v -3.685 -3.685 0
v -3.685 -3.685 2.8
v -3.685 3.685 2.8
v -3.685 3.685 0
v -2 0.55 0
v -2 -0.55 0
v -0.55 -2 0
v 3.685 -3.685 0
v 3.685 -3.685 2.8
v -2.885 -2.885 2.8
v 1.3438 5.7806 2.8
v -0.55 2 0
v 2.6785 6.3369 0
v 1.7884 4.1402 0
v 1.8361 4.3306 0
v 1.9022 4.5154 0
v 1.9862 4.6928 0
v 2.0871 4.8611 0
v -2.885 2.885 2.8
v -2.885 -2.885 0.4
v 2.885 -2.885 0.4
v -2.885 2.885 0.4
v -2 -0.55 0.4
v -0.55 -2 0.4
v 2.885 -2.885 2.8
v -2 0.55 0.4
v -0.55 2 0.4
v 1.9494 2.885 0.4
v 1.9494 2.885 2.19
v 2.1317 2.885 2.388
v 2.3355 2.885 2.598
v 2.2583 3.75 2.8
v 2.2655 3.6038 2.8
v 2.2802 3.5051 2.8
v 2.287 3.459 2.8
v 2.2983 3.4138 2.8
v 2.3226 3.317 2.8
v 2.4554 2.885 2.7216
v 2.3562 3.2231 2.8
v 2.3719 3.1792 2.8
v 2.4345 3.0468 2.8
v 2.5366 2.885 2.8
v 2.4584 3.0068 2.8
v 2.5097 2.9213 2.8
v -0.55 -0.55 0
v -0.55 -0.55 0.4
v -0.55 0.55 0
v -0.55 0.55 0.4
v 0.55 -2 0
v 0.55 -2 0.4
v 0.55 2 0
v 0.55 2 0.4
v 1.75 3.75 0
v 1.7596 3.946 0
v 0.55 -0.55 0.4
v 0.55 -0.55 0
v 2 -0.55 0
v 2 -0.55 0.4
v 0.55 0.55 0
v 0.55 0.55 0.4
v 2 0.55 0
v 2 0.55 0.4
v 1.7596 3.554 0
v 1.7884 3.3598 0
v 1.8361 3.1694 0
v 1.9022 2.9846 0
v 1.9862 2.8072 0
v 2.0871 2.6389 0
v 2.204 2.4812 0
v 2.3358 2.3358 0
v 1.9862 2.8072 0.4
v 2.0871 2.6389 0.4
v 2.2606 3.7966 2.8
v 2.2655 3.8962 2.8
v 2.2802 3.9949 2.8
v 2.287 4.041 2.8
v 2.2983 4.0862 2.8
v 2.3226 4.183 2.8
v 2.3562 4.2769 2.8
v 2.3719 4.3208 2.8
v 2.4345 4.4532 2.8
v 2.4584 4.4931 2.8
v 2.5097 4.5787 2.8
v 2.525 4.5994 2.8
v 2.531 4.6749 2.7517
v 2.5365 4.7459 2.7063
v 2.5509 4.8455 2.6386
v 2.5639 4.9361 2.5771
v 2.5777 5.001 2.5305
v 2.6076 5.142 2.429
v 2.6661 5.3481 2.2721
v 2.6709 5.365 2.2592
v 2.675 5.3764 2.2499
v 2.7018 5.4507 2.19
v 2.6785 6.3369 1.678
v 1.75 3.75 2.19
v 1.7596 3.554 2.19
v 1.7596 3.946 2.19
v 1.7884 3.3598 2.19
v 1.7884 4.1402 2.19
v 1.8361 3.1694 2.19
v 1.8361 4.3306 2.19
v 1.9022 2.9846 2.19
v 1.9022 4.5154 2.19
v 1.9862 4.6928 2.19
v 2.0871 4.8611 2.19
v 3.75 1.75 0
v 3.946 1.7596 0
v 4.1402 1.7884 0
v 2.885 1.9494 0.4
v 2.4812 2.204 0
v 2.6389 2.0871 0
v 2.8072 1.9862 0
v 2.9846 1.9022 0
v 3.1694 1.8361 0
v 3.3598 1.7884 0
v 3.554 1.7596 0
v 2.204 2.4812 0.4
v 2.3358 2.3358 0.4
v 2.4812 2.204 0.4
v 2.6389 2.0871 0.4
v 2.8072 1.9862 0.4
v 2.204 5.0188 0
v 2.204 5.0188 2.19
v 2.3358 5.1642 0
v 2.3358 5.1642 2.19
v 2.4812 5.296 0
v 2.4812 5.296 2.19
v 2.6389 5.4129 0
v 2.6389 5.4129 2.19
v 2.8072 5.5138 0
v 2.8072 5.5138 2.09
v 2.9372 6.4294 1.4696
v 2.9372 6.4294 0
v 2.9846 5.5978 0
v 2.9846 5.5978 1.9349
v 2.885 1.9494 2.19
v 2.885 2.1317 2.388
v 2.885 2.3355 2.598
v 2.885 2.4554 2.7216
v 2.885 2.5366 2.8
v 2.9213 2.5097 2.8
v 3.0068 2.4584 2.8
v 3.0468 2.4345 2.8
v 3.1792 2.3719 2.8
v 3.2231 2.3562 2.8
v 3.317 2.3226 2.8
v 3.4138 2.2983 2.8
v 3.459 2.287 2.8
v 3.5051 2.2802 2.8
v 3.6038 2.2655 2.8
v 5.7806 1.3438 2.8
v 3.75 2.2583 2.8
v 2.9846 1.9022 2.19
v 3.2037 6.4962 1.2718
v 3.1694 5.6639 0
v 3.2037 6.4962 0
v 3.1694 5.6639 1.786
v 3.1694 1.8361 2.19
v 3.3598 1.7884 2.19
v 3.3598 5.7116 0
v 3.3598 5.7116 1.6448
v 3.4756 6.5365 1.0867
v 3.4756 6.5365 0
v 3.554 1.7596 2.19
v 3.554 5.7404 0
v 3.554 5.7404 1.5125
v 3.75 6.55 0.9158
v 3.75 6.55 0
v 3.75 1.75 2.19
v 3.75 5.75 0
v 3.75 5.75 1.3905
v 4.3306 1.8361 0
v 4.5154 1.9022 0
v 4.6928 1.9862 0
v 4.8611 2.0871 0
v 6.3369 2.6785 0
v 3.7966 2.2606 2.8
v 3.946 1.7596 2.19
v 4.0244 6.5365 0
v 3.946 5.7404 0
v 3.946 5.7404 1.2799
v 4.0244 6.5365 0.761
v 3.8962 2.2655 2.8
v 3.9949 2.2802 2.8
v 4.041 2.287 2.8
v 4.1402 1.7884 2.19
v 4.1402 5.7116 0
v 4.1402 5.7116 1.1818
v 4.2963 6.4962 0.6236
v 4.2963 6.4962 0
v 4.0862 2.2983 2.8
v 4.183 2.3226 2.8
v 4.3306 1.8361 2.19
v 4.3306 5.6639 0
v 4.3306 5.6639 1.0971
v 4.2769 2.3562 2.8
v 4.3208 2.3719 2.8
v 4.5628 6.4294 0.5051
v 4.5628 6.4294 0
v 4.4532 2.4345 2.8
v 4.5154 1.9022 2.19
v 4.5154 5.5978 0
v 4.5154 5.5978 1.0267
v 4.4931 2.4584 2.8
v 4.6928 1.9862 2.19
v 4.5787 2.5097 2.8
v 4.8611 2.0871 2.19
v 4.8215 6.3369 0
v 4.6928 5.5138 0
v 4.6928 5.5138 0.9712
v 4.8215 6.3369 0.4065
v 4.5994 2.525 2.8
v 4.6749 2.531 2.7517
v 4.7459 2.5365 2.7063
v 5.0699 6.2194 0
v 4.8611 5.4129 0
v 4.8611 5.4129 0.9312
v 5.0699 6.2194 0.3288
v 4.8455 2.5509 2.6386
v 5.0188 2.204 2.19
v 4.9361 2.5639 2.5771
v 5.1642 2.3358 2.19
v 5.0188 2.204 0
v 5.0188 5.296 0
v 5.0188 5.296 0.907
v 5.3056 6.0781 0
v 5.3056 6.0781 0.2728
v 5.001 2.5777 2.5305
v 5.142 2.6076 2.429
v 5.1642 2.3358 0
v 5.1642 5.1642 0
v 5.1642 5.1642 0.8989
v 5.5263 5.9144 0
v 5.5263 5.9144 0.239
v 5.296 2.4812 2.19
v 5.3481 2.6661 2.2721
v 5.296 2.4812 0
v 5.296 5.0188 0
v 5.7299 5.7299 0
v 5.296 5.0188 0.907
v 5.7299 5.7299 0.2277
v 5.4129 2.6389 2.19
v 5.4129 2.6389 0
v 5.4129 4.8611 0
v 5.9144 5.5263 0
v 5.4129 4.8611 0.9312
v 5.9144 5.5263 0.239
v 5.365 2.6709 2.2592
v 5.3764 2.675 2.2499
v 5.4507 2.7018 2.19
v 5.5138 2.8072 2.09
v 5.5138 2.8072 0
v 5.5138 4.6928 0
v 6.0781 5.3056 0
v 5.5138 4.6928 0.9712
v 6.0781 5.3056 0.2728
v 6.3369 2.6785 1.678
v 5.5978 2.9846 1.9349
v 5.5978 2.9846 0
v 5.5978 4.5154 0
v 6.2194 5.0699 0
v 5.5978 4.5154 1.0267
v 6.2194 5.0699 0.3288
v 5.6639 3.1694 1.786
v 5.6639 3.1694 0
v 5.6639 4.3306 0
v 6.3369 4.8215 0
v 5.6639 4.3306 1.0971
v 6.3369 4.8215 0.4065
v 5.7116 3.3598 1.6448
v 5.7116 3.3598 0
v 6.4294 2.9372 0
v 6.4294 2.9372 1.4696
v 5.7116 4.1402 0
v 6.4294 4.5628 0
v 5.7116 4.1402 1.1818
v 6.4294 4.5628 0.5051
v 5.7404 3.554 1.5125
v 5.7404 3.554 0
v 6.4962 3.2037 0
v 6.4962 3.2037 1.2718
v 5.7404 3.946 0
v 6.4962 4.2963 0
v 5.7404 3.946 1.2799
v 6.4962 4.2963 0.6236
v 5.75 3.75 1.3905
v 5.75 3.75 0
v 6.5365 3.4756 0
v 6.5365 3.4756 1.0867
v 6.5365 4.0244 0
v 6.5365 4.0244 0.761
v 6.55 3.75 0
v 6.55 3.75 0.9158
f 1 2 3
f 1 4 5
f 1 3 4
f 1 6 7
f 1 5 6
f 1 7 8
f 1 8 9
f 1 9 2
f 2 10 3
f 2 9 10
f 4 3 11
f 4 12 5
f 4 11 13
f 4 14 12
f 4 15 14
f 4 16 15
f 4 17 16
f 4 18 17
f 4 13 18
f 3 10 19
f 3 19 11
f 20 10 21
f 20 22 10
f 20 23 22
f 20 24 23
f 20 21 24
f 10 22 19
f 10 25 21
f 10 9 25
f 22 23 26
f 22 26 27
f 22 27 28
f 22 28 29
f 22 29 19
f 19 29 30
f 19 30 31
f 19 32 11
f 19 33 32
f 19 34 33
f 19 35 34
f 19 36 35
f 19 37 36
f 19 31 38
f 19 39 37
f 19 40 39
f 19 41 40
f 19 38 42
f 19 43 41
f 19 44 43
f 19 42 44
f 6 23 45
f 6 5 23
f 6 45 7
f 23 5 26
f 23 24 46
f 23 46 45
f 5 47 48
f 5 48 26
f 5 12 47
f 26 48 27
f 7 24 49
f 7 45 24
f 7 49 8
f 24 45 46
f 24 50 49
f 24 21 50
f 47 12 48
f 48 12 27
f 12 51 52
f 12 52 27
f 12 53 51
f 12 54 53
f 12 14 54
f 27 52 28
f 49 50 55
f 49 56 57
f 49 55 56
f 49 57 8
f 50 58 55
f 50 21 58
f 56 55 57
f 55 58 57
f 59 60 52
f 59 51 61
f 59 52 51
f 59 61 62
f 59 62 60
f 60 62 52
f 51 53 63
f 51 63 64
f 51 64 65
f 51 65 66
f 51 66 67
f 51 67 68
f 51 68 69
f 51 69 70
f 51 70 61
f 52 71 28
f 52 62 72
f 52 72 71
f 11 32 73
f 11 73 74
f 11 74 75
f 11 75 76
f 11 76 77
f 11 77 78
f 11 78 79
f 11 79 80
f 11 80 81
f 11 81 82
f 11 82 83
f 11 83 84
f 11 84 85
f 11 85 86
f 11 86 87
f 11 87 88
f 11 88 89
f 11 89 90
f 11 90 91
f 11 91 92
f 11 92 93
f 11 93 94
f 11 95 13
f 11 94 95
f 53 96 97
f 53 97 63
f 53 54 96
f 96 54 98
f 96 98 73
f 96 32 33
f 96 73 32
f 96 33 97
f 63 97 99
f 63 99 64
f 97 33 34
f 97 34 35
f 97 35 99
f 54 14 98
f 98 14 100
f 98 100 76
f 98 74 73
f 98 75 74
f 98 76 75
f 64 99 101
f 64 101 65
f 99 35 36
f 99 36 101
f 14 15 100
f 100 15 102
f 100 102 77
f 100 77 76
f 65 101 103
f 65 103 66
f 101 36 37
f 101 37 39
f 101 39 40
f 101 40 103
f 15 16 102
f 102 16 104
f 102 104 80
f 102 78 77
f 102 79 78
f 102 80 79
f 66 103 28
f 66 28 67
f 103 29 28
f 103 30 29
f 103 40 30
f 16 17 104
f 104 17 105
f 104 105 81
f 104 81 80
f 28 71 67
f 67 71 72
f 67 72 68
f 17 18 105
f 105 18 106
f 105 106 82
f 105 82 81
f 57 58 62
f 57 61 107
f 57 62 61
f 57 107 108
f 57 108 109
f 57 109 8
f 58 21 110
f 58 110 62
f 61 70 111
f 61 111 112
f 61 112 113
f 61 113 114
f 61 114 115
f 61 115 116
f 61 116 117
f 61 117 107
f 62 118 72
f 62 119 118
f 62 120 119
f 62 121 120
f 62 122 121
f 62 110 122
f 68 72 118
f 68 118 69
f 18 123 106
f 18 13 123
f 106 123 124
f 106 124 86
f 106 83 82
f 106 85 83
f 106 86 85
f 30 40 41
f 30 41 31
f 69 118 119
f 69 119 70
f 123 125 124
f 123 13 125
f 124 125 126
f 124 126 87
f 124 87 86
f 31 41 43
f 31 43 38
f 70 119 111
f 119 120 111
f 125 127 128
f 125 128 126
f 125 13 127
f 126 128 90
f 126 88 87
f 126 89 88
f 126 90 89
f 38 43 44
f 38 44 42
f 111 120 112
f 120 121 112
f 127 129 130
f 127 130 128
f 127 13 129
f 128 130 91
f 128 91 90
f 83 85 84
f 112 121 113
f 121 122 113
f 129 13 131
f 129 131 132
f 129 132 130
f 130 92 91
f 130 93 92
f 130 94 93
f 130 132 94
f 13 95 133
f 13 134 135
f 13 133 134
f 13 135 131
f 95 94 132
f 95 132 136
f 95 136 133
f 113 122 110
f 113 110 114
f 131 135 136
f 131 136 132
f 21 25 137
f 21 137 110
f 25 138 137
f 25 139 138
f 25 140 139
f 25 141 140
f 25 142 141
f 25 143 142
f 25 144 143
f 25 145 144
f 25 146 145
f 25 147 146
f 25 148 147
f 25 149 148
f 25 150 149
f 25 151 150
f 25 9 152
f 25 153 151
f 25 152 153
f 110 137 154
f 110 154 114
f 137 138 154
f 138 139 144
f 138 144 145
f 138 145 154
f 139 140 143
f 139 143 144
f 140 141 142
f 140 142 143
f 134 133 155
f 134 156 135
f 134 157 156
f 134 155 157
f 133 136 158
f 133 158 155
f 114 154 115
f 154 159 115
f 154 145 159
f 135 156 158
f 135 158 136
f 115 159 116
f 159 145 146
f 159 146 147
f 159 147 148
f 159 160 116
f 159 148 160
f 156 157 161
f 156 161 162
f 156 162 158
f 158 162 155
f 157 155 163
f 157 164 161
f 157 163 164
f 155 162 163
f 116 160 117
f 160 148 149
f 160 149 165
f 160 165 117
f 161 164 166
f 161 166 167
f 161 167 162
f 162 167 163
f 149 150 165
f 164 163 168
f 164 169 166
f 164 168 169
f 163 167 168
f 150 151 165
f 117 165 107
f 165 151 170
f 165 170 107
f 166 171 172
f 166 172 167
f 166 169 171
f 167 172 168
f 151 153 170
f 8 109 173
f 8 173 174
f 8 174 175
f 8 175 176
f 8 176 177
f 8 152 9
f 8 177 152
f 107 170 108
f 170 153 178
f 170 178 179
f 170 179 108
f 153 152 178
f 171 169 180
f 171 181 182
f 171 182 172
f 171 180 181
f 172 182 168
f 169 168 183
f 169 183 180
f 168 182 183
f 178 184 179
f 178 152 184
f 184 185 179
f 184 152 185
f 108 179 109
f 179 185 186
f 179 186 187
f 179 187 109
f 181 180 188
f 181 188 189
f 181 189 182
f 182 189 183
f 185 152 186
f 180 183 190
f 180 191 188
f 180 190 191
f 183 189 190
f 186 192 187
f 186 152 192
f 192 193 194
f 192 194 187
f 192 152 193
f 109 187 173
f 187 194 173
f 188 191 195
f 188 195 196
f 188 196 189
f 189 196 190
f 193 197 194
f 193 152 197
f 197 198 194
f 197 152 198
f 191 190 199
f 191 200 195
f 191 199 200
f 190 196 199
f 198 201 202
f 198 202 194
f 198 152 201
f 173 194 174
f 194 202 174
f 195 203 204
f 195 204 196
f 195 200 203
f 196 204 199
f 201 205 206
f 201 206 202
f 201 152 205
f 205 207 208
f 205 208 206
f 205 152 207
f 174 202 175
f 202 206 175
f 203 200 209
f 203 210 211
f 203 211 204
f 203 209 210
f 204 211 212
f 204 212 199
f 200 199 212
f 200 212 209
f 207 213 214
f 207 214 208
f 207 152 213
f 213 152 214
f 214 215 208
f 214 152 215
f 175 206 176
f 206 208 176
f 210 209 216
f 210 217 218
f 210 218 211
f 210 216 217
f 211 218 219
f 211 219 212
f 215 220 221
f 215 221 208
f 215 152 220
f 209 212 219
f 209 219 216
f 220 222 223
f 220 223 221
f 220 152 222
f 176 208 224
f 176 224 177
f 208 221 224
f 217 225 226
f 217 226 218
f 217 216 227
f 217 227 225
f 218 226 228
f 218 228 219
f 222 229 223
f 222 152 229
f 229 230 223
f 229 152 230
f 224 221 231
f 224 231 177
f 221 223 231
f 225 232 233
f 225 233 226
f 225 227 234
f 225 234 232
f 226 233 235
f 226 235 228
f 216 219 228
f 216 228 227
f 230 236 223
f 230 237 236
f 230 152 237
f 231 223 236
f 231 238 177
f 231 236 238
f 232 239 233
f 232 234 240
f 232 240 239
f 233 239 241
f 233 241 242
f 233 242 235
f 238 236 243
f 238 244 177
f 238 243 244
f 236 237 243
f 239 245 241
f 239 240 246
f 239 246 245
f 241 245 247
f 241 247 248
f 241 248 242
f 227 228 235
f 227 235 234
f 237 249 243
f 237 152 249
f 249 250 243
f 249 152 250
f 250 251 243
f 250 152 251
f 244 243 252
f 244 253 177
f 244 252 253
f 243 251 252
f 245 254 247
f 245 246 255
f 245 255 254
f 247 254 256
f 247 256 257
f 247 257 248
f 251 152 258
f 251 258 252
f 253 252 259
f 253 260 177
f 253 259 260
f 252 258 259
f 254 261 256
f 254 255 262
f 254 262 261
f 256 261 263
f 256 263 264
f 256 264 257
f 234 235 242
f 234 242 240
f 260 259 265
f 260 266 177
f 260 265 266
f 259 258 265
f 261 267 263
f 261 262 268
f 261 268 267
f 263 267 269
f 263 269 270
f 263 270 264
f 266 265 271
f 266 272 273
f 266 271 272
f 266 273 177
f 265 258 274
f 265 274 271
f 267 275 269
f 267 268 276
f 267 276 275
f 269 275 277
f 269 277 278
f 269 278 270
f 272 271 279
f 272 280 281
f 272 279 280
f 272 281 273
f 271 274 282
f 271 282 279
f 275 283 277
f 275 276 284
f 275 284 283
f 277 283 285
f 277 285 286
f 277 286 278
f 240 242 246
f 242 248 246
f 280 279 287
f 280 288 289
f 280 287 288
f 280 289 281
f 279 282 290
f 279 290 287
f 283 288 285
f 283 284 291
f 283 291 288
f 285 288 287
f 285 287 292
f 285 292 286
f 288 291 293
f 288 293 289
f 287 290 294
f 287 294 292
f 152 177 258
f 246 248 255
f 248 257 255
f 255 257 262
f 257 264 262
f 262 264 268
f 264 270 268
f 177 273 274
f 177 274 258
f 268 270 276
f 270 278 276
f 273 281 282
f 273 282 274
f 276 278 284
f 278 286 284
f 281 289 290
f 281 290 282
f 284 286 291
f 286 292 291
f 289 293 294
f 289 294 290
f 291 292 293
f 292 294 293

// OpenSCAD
// file: ../../utils.scad
SWITCH_HOLE_WIDTH = 14;
SWITCH_HOLE_TOLERANCE = 0.2;

PLATE_THICKNESS = 1.7;
PLATE_BORDER_WIDTH = 3;

SWITCH_HEIGHT_UNDER_PLATE = 5 - PLATE_THICKNESS;
SWITCH_PLACEHOLDER_WIDTH = 19.05;

STAB_2u_DISTANCE_BETWEEN_HOLES_CENTER = 23.8;
STAB_3u_DISTANCE_BETWEEN_HOLES_CENTER = 38.1;
STAB_5u_DISTANCE_BETWEEN_HOLES_CENTER = 76.2;
// STAB_HOLE_WIDHT = 6.75;
STAB_HOLE_WIDHT = 7;
STAB_HOLE_HEIGHT = 14;
STAB_HOLE_DISTANCE_TO_SWITCH_TOP = 1;

KEYCAP_WIDTH = 18.10;
KEYCAP_HEIGHT = 11.60;
KEYCAP_HEIGHT_ABOVE_PLATE = 6.80;

SUPPORT_WALL_THICKNESS = 1.85;

/* [Hidden] */

$fn = 32;

module hole(x = 0, y = 0, w = 0, h = 0, is_support = false) {
  real_x = x * SWITCH_PLACEHOLDER_WIDTH;
  real_y = y * SWITCH_PLACEHOLDER_WIDTH;
  real_w = w * SWITCH_PLACEHOLDER_WIDTH;
  real_h = h * SWITCH_PLACEHOLDER_WIDTH;

  center_x = real_x + real_w/2;
  center_y = real_y + real_h/2;
  translate([center_x, center_y, 0]) {
    if (is_support) {
      r = 1.5;
      // Switch under plate
      offset(r = r) offset(r = -r) square(SWITCH_PLACEHOLDER_WIDTH - SUPPORT_WALL_THICKNESS, true);

      // Stab under plate
      offset(r = r) offset(r = -r) {
        // 2u, 2.25u, 2.75u stab
        if (w == 2 || w == 2.25 || w == 2.75) {
          square([STAB_HOLE_WIDHT + STAB_2u_DISTANCE_BETWEEN_HOLES_CENTER + 3, SWITCH_PLACEHOLDER_WIDTH + 1], true);
        }
        
        // 3u stab
        if (w == 3) {
          square([STAB_HOLE_WIDHT + STAB_3u_DISTANCE_BETWEEN_HOLES_CENTER + 3, SWITCH_PLACEHOLDER_WIDTH + 1], true);
        }

        // ISO enter key
        if (h == 2) {
          square([SWITCH_PLACEHOLDER_WIDTH + 1, STAB_HOLE_WIDHT + STAB_2u_DISTANCE_BETWEEN_HOLES_CENTER + 3], true);
        }
      }
    } else {
      // Switch plate hole
      square(SWITCH_HOLE_WIDTH + SWITCH_HOLE_TOLERANCE, true);

      // Stab plate hole
      stab_distance_to_top = y == 0 ? STAB_HOLE_DISTANCE_TO_SWITCH_TOP : -STAB_HOLE_DISTANCE_TO_SWITCH_TOP;
      translate([0, stab_distance_to_top, 0]) {
        // 2u, 2.25u, 2.75u stab
        if (w == 2 || w == 2.25 || w == 2.75) {
          translate([STAB_2u_DISTANCE_BETWEEN_HOLES_CENTER/2, 0, 0])  square([STAB_HOLE_WIDHT, STAB_HOLE_HEIGHT], true);
          translate([-STAB_2u_DISTANCE_BETWEEN_HOLES_CENTER/2, 0, 0])  square([STAB_HOLE_WIDHT, STAB_HOLE_HEIGHT], true);
        }
        
        // 3u stab
        if (w == 3) {
          translate([STAB_3u_DISTANCE_BETWEEN_HOLES_CENTER/2, 0, 0])  square([STAB_HOLE_WIDHT, STAB_HOLE_HEIGHT], true);
          translate([-STAB_3u_DISTANCE_BETWEEN_HOLES_CENTER/2, 0, 0])  square([STAB_HOLE_WIDHT, STAB_HOLE_HEIGHT], true);
        }
      } 

      // ISO enter key
      if (h == 2) {
        translate([-STAB_HOLE_DISTANCE_TO_SWITCH_TOP, 0, 0]) {
          translate([0, STAB_2u_DISTANCE_BETWEEN_HOLES_CENTER/2, 0])  square([STAB_HOLE_HEIGHT, STAB_HOLE_WIDHT], true);
          translate([0, -STAB_2u_DISTANCE_BETWEEN_HOLES_CENTER/2, 0])  square([STAB_HOLE_HEIGHT, STAB_HOLE_WIDHT], true);
        }
      }
    }
  }
}

module plate(x = 0, y = 0) {
  difference() {
    square([x * SWITCH_PLACEHOLDER_WIDTH, y * SWITCH_PLACEHOLDER_WIDTH]);
    children();
  }
}
// main file
// THE LEVITATOR - Goes under the keycap to provide a cusion of magnetic levitation

// AUTHOR: Riskable <riskable@youknowwhat.com>
// VERSION: 1.0 (Changelog is at the bottom)

/* NOTES:

    * The default configuration works with 4x1 through 4x2mm magnets (anything shorter than 2mm will end up stuck in
   there just fine--don't worry about it).
    * The default configuration will "eat" 0.4mm of your stem's cross height.  So keycaps won't be able to go all the
   way down (if you didn't print that part of the stem slightly longer to make up for it).  In testing, losing 0.4mm of
   height on the cross part of the stem makes absolutely no difference whatsoever.  The keycap still stays on just fine.
   I wouldn't worry about it =)

*/

$fn = 64;

use <../../utils.scad>

// Configurables
LEVITATOR_THICKNESS =
    0.4; // How thick the floor will be/how much of the cross part of the stem (+) gets eaten by THE LEVITATOR
WALL_THICKNESS = 0.8;   // How thick around the edges you want it to be (0.8 is fine and fits under most keycaps)
STEM_TOLERANCE = 0.15;  // How tight the cross-shaped cutout will be
MAGNET_TOLERANCE = 0.2; // Only used with MAGNET_HEIGHT (because we have some bridging)
MAGNET_DIAMETER = 4;
MAGNET_HEIGHT = 2;
MAGNET_DISTANCE = 3.75; // Distance from the center of the stem where the magnet goes

// Constants
CHERRY_CYLINDER_DIAMETER = 5.47; // Represents the keycap's stem (female side of the +)
CHERRY_CROSS_LENGTH = 4;         // Length of the - and the | in the +
// We make the cross slightly thinner than normal to keep a tight fit:
CHERRY_CROSS_THICKNESS_X = 1.1; // Width of the - and in the + (Reality: 1.31)
CHERRY_CROSS_THICKNESS_Y = 1.1; // Width of the | in the + (Reality: 1.09)

levitator(MAGNET_DIAMETER, MAGNET_HEIGHT, magnet_distance = MAGNET_DISTANCE, magnet_tolerance = MAGNET_TOLERANCE,
          wall_thickness = WALL_THICKNESS, thickness = LEVITATOR_THICKNESS, stem_tolerance = STEM_TOLERANCE);
// levitator_double_sided(MAGNET_DIAMETER, MAGNET_HEIGHT, magnet_distance=MAGNET_DISTANCE,
// magnet_tolerance=MAGNET_TOLERANCE, wall_thickness=WALL_THICKNESS, thickness=LEVITATOR_THICKNESS,
// stem_tolerance=STEM_TOLERANCE);

// TODO: Finish making this as well as making a matching void space version for top plates:
// This is for the special situations with long ass/heavy spacebars:
BACKFORCE_LENGTH = 30; // 15mm from the center of the switch on either side
BACKFORCE_WIDTH =
    11; // Needs to fit inside/under the keycap but not terribly tight--just enough to prevent it from rotating
// uplifting_jigaroo(BACKFORCE_LENGTH, BACKFORCE_WIDTH, stem_diameter=CHERRY_CYLINDER_DIAMETER, magnet_diameter=4,
// magnet_height=2, magnet_tolerance=0, wall_thickness=1.2);

module levitator(magnet_diameter, magnet_height, magnet_distance = 3.75, magnet_tolerance = MAGNET_TOLERANCE,
                 wall_thickness = 0.9, thickness = 1, stem_tolerance = 0.15)
{
    // NOTE: stem_tolerance is the keycap stem; not the switch stem
    height = 2 + wall_thickness; // Just enough to grab the stem
    difference()
    {
        translate([ 0, 0, height / 2 ]) union()
        {
            // Main body of the thing
            hull()
            {
                // NOTE: The square-ish walls around the stem area are just to provide rigidity
                cube(
                    [
                        CHERRY_CYLINDER_DIAMETER + wall_thickness * 2 + stem_tolerance * 2,
                        CHERRY_CYLINDER_DIAMETER + wall_thickness * 2 + stem_tolerance * 2,
                        height
                    ],
                    center = true);
                translate([ magnet_distance, magnet_distance, 0 ])
                    cylinder(d = magnet_diameter + wall_thickness * 2, h = height, center = true);
            }
            // Body of the part that holds the magnet (hollowed out below)
            translate([ magnet_distance, magnet_distance, 0 ])
                cylinder(d = magnet_diameter + wall_thickness * 2, h = height, center = true);
        }
        translate([ 0, 0, -5 ]) cherry_cross(length = 10);               // Just don't die on it
        translate([ 0, 0, height / 2 + thickness + wall_thickness / 2 ]) // Stem cutout
            cube(
                [
                    CHERRY_CYLINDER_DIAMETER + stem_tolerance * 2, CHERRY_CYLINDER_DIAMETER + stem_tolerance * 2,
                    height +
                    wall_thickness
                ],
                center = true);
        translate([ magnet_distance, magnet_distance, (magnet_height + magnet_tolerance) / 2 - 0.01 ])
        {
            cylinder(d = magnet_diameter, h = magnet_height + magnet_tolerance, center = true);
            // So we can pop the magnet out if we screw up which pole is facing down:
            //            rotate([0,0,45])
            //                cube([magnet_diameter/3,magnet_diameter/3,100], center=true);
        }
        // Make an angled hole in the top that stops the magnet from coming out while also letting you push it out if
        // needed to flip it around
        translate([ magnet_distance, magnet_distance, wall_thickness / 2 + (magnet_height + magnet_tolerance) - 0.01 ])
            cylinder(d1 = magnet_diameter, d2 = magnet_diameter / 1.5, h = wall_thickness, center = true);
        // Cut off a few bits here and there so it can fit under more keycaps
        //        translate([magnet_distance*2+wall_thickness/1.25,magnet_distance*1.25,magnet_diameter/2])
        //            cube([magnet_diameter, magnet_diameter*2, magnet_diameter*2], center=true);
        //        translate([magnet_distance*1.25,magnet_distance*2+wall_thickness/1.25,magnet_diameter/2])
        //            cube([magnet_diameter*2, magnet_diameter, magnet_diameter*2], center=true);
        translate([ magnet_distance * 1.5, magnet_distance * 1.5, magnet_diameter / 1.35 ]) rotate([ 0, -50, 45 ])
            cube([ magnet_diameter, magnet_diameter * 2, magnet_diameter * 2 ], center = true);
    }
}

module levitator_double_sided(magnet_diameter, magnet_height, magnet_distance = 3.75,
                              magnet_tolerance = MAGNET_TOLERANCE, wall_thickness = 0.9, thickness = 1,
                              stem_tolerance = 0.15)
{
    // NOTE: stem_tolerance is the keycap stem; not the switch stem
    height = 2 + wall_thickness; // Just enough to grab the stem
    difference()
    {
        translate([ 0, 0, height / 2 ]) union()
        {
            // Main body of the thing
            hull()
            {
                // NOTE: The square-ish walls around the stem area are just to provide rigidity
                cube(
                    [
                        CHERRY_CYLINDER_DIAMETER + wall_thickness * 2 + stem_tolerance * 2,
                        CHERRY_CYLINDER_DIAMETER + wall_thickness * 2 + stem_tolerance * 2,
                        height
                    ],
                    center = true);
                translate([ magnet_distance, magnet_distance, 0 ])
                    cylinder(d = magnet_diameter + wall_thickness * 2, h = height, center = true);
                translate([ -magnet_distance, -magnet_distance, 0 ])
                    cylinder(d = magnet_diameter + wall_thickness * 2, h = height, center = true);
            }
            // Body of the part that holds the magnet (hollowed out below)
            translate([ magnet_distance, magnet_distance, 0 ])
                cylinder(d = magnet_diameter + wall_thickness * 2, h = height, center = true);
        }
        translate([ 0, 0, -5 ]) cherry_cross(length = 10);               // Just don't die on it
        translate([ 0, 0, height / 2 + thickness + wall_thickness / 2 ]) // Stem cutout
            cube(
                [
                    CHERRY_CYLINDER_DIAMETER + stem_tolerance * 2, CHERRY_CYLINDER_DIAMETER + stem_tolerance * 2,
                    height +
                    wall_thickness
                ],
                center = true);
        translate([ magnet_distance, magnet_distance, (magnet_height + magnet_tolerance) / 2 - 0.01 ])
            cylinder(d = magnet_diameter, h = magnet_height + magnet_tolerance, center = true);
        translate([ -magnet_distance, -magnet_distance, (magnet_height + magnet_tolerance) / 2 - 0.01 ])
            cylinder(d = magnet_diameter, h = magnet_height + magnet_tolerance, center = true);
        // Make an angled hole in the top that stops the magnet from coming out while also letting you push it out if
        // needed to flip it around
        translate([ magnet_distance, magnet_distance, wall_thickness / 2 + (magnet_height + magnet_tolerance) - 0.01 ])
            cylinder(d1 = magnet_diameter, d2 = magnet_diameter / 1.5, h = wall_thickness, center = true);
        translate(
            [ -magnet_distance, -magnet_distance, wall_thickness / 2 + (magnet_height + magnet_tolerance) - 0.01 ])
            cylinder(d1 = magnet_diameter, d2 = magnet_diameter / 1.5, h = wall_thickness, center = true);
        // Cut off a few bits here and there so it can fit under more keycaps
        translate([ magnet_distance * 1.5, magnet_distance * 1.5, magnet_diameter / 1.35 ]) rotate([ 0, -50, 45 ])
            cube([ magnet_diameter, magnet_diameter * 2, magnet_diameter * 2 ], center = true);
        translate([ -magnet_distance * 1.5, -magnet_distance * 1.5, magnet_diameter / 1.35 ]) rotate([ 0, 50, 45 ])
            cube([ magnet_diameter, magnet_diameter * 2, magnet_diameter * 2 ], center = true);
    }
}

// This is a magnetic levitation backward-force generator that can be placed under any given (long) keycap to cusion the
// bottom and provide a backwards (upwards) force to ease the burden of bringing a heavy keycap back up.  In other
// words, it's for (heavy) spacebars.  NOTE: The *length* is really just the distance between the center of the
// magnets--not the actual length of the thing. NOTE: Requires matching magnets (same locations underneath) in the
// keyboard plate!
module uplifting_jigaroo(length, width, stem_diameter = CHERRY_CYLINDER_DIAMETER, magnet_diameter = 4,
                         magnet_height = 2, magnet_tolerance = 0, wall_thickness = 1.2)
{
    // NOTE: We make this pretty thick so it's stable--even though that adds extra weight
    difference()
    {
        cube(
            [
                length + magnet_diameter + magnet_tolerance * 2 + wall_thickness * 2, width, magnet_height +
                wall_thickness
            ],
            center = true);
        cube([ stem_diameter, stem_diameter, wall_thickness * 8 ], center = true);
        translate([ length / 2, 0, magnet_height / 2 - wall_thickness / 4 ])
            cylinder(d = magnet_diameter + magnet_tolerance * 2, h = magnet_height + 0.01, center = true);
        translate([ -length / 2, 0, magnet_height / 2 - wall_thickness / 4 ])
            cylinder(d = magnet_diameter + magnet_tolerance * 2, h = magnet_height + 0.01, center = true);
    }
}

// This makes the + bit that slides *in* to a Cherry MX style keycap:
module cherry_cross(length = CHERRY_CROSS_LENGTH, y_adjust = 0, x_adjust = 0)
{
    linear_extrude(height = length)
    {
        square([ CHERRY_CROSS_THICKNESS_X + x_adjust, CHERRY_CROSS_LENGTH ], center = true);
        square([ CHERRY_CROSS_LENGTH, CHERRY_CROSS_THICKNESS_Y + y_adjust ], center = true);
    }
}
